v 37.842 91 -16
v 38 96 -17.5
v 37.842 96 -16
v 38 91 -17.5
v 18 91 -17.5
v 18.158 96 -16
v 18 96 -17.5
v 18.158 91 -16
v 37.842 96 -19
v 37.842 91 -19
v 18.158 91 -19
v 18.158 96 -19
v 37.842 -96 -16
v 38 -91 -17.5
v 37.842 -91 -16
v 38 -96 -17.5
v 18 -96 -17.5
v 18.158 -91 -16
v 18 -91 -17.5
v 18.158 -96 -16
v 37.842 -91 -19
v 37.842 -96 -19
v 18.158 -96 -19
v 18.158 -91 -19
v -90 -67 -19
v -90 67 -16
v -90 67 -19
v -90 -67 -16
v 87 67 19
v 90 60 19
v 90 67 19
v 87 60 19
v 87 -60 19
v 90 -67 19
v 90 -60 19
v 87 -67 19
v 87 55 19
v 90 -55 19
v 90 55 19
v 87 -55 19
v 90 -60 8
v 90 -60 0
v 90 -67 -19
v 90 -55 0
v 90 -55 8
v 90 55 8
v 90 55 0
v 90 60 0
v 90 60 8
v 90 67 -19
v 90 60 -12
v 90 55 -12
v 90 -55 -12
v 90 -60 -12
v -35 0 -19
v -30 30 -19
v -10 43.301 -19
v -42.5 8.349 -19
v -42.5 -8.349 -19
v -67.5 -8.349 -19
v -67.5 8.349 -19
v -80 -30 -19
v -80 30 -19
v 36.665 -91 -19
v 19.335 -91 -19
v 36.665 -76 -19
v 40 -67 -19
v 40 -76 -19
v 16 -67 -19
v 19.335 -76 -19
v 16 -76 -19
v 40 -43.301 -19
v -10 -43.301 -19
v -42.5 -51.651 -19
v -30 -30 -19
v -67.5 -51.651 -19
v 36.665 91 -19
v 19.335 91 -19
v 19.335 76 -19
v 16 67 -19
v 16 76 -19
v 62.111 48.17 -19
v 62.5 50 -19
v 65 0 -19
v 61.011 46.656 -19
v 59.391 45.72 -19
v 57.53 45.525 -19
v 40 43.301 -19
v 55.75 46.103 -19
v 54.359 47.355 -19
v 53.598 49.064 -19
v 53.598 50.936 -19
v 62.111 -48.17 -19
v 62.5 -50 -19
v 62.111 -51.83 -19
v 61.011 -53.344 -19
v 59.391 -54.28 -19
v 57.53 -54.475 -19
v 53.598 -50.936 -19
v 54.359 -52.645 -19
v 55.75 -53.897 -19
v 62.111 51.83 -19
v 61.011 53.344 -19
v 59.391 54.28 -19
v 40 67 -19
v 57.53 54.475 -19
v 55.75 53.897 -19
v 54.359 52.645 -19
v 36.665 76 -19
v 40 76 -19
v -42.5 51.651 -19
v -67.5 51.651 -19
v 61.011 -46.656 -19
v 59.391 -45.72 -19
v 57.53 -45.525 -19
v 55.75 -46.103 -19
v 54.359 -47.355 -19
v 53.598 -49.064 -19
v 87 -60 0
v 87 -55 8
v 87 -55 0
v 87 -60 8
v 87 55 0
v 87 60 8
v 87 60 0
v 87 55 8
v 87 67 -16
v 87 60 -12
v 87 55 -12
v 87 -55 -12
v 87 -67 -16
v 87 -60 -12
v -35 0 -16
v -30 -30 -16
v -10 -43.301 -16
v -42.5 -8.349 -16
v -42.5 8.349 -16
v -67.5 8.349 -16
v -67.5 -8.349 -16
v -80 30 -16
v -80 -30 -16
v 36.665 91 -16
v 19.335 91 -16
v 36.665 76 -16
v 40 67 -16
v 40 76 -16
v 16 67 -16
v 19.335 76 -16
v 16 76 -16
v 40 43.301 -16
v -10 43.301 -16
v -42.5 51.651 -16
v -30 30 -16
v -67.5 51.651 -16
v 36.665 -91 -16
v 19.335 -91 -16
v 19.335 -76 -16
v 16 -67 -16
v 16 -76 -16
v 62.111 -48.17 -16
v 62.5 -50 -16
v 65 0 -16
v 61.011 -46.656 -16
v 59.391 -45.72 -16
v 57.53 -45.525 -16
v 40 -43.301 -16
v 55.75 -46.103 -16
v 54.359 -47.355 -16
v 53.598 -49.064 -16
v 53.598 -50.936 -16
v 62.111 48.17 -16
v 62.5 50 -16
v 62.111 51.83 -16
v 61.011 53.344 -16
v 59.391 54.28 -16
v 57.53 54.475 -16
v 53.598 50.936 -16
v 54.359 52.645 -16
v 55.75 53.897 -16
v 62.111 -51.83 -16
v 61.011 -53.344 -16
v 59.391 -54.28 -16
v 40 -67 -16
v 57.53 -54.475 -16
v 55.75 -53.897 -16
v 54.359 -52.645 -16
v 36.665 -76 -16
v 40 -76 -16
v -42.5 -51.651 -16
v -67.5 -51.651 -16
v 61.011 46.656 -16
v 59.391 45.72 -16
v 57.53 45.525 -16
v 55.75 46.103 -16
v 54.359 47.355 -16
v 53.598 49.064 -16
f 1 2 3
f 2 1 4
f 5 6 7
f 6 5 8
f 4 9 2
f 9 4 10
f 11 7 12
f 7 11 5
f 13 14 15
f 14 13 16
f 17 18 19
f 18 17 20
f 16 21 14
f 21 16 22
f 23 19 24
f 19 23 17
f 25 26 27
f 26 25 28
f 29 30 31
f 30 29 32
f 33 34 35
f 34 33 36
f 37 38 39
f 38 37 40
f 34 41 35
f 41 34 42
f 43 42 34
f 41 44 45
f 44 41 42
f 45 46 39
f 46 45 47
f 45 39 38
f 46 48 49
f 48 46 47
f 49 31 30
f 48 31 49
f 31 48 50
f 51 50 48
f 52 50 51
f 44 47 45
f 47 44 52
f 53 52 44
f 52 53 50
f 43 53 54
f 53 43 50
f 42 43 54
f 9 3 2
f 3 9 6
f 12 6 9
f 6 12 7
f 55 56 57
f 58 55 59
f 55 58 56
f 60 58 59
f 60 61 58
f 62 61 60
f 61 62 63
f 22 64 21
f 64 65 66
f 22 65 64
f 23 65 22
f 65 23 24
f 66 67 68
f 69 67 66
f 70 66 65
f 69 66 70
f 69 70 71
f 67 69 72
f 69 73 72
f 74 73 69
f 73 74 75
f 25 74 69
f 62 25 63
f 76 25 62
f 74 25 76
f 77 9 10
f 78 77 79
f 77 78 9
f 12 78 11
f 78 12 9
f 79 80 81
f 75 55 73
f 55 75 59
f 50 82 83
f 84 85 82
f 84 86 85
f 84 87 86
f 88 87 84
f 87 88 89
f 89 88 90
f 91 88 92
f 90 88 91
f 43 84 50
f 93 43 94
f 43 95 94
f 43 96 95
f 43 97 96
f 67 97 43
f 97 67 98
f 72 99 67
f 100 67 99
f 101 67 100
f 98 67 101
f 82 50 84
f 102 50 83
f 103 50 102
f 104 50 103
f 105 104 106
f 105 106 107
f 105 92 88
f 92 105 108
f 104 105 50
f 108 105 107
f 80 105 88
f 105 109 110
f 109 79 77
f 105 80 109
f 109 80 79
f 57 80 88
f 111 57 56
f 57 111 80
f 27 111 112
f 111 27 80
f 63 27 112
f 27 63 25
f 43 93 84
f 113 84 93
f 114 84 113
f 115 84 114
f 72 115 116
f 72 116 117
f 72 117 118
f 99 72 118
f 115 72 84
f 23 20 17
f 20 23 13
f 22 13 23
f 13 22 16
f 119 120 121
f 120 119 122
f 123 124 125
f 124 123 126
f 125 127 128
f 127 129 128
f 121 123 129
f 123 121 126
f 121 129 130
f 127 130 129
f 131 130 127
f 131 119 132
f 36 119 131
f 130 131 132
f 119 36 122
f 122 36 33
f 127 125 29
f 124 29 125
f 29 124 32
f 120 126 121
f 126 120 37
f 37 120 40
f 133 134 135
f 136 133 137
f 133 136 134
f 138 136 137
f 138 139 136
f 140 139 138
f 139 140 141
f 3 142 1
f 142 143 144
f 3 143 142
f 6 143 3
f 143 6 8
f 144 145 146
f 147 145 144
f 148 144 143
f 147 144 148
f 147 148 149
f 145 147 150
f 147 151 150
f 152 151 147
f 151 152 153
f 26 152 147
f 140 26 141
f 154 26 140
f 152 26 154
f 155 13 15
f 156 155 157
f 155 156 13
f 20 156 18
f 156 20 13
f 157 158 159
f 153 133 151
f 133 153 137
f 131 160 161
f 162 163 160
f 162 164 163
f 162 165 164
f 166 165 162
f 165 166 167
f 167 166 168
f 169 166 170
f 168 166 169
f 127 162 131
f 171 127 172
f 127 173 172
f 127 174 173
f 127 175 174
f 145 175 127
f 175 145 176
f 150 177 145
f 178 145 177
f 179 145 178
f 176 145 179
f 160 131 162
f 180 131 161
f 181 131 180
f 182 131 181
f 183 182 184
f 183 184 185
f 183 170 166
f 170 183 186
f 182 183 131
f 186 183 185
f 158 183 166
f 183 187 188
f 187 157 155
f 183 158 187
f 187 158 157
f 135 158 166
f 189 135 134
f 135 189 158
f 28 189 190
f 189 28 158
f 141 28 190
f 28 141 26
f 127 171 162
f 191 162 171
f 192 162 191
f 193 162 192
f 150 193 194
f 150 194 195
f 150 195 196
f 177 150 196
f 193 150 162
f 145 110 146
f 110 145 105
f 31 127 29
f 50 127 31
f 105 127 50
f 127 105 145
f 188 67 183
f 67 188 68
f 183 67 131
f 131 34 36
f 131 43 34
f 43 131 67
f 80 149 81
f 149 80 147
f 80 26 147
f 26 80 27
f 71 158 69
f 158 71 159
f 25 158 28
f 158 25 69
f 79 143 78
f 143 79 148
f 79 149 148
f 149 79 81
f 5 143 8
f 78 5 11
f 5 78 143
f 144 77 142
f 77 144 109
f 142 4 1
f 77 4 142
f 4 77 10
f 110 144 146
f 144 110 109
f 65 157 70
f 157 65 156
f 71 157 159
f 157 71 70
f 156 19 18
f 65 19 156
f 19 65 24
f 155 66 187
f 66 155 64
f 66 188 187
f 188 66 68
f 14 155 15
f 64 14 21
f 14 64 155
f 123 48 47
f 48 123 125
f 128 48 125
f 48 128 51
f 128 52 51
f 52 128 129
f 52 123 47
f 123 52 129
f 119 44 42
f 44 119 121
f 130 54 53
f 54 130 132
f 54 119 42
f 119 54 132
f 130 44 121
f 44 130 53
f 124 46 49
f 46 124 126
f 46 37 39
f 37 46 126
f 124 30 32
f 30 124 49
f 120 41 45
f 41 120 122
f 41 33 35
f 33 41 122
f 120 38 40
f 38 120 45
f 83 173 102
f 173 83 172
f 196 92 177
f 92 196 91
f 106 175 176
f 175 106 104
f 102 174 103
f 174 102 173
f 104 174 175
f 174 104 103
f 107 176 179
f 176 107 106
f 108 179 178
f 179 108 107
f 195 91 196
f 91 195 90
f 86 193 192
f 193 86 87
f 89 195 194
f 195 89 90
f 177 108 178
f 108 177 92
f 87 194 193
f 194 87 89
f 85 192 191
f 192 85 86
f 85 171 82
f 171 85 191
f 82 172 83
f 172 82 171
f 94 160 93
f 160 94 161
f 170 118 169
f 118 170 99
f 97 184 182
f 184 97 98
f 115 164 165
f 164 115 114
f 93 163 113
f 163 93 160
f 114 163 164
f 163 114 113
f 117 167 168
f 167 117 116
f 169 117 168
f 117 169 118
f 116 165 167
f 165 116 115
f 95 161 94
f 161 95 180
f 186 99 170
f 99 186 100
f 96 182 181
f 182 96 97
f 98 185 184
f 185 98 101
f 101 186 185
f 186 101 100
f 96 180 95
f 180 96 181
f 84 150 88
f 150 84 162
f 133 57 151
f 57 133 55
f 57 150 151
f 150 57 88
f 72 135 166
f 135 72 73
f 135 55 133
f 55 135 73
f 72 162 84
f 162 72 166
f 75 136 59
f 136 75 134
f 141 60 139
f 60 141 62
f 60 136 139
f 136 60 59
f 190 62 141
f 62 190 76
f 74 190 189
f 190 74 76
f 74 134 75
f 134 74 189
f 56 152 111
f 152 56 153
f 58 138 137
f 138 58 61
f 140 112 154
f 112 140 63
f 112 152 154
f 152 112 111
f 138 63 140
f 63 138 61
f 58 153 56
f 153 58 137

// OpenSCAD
difference () {
  cube ([180, 192, 38], center=true);
  translate ([-1.5, 0, 1.5]) {
    cube ([177, 192, 35], center=true);
  }
  translate ([65, 83.5, 0]) {
    cube ([50, 33, 38], center=true);
  }
  translate ([65, -83.5, 0]) {
    cube ([50, 33, 38], center=true);
  }
  translate ([-37, 83.5, 0]) {
    cube ([106, 33, 38], center=true);
  }
  translate ([-37, -83.5, 0]) {
    cube ([106, 33, 38], center=true);
  }
  translate ([17.335, 83.5, -17.5]) {
    cube ([4, 15, 3], center=true);
  }
  translate ([38.665, 83.5, -17.5]) {
    cube ([4, 15, 3], center=true);
  }
  translate ([17.335, -83.5, -17.5]) {
    cube ([4, 15, 3], center=true);
  }
  translate ([38.665, -83.5, -17.5]) {
    cube ([4, 15, 3], center=true);
  }
  translate ([28, 96, -17.5]) {
    rotate (a=90.0, v=[1, 0, 0]) {
      difference () {
        cylinder (h=20, r=15, center=true);
        cylinder (h=20, r=10, center=true);
      }
    }
  }
  translate ([28, -96, -17.5]) {
    rotate (a=90.0, v=[1, 0, 0]) {
      difference () {
        cylinder (h=20, r=15, center=true);
        cylinder (h=20, r=10, center=true);
      }
    }
  }
  translate ([88.5, 57.5, -6]) {
    cube ([3, 5, 12], center=true);
  }
  translate ([88.5, -57.5, -6]) {
    cube ([3, 5, 12], center=true);
  }
  translate ([88.5, 57.5, 14]) {
    cube ([3, 5, 12], center=true);
  }
  translate ([88.5, -57.5, 14]) {
    cube ([3, 5, 12], center=true);
  }
  translate ([58, 50, -17.5]) {
    cylinder (h=3, r=4.5, center=true);
  }
  translate ([58, -50, -17.5]) {
    cylinder (h=3, r=4.5, center=true);
  }
  translate ([15, 0, -17.5]) {
    cylinder ($fn=6, h=3, r=50, center=true);
  }
  translate ([-55, -30, -17.5]) {
    cylinder ($fn=6, h=3, r=25, center=true);
  }
  translate ([-55, 30, -17.5]) {
    cylinder ($fn=6, h=3, r=25, center=true);
  }
}
